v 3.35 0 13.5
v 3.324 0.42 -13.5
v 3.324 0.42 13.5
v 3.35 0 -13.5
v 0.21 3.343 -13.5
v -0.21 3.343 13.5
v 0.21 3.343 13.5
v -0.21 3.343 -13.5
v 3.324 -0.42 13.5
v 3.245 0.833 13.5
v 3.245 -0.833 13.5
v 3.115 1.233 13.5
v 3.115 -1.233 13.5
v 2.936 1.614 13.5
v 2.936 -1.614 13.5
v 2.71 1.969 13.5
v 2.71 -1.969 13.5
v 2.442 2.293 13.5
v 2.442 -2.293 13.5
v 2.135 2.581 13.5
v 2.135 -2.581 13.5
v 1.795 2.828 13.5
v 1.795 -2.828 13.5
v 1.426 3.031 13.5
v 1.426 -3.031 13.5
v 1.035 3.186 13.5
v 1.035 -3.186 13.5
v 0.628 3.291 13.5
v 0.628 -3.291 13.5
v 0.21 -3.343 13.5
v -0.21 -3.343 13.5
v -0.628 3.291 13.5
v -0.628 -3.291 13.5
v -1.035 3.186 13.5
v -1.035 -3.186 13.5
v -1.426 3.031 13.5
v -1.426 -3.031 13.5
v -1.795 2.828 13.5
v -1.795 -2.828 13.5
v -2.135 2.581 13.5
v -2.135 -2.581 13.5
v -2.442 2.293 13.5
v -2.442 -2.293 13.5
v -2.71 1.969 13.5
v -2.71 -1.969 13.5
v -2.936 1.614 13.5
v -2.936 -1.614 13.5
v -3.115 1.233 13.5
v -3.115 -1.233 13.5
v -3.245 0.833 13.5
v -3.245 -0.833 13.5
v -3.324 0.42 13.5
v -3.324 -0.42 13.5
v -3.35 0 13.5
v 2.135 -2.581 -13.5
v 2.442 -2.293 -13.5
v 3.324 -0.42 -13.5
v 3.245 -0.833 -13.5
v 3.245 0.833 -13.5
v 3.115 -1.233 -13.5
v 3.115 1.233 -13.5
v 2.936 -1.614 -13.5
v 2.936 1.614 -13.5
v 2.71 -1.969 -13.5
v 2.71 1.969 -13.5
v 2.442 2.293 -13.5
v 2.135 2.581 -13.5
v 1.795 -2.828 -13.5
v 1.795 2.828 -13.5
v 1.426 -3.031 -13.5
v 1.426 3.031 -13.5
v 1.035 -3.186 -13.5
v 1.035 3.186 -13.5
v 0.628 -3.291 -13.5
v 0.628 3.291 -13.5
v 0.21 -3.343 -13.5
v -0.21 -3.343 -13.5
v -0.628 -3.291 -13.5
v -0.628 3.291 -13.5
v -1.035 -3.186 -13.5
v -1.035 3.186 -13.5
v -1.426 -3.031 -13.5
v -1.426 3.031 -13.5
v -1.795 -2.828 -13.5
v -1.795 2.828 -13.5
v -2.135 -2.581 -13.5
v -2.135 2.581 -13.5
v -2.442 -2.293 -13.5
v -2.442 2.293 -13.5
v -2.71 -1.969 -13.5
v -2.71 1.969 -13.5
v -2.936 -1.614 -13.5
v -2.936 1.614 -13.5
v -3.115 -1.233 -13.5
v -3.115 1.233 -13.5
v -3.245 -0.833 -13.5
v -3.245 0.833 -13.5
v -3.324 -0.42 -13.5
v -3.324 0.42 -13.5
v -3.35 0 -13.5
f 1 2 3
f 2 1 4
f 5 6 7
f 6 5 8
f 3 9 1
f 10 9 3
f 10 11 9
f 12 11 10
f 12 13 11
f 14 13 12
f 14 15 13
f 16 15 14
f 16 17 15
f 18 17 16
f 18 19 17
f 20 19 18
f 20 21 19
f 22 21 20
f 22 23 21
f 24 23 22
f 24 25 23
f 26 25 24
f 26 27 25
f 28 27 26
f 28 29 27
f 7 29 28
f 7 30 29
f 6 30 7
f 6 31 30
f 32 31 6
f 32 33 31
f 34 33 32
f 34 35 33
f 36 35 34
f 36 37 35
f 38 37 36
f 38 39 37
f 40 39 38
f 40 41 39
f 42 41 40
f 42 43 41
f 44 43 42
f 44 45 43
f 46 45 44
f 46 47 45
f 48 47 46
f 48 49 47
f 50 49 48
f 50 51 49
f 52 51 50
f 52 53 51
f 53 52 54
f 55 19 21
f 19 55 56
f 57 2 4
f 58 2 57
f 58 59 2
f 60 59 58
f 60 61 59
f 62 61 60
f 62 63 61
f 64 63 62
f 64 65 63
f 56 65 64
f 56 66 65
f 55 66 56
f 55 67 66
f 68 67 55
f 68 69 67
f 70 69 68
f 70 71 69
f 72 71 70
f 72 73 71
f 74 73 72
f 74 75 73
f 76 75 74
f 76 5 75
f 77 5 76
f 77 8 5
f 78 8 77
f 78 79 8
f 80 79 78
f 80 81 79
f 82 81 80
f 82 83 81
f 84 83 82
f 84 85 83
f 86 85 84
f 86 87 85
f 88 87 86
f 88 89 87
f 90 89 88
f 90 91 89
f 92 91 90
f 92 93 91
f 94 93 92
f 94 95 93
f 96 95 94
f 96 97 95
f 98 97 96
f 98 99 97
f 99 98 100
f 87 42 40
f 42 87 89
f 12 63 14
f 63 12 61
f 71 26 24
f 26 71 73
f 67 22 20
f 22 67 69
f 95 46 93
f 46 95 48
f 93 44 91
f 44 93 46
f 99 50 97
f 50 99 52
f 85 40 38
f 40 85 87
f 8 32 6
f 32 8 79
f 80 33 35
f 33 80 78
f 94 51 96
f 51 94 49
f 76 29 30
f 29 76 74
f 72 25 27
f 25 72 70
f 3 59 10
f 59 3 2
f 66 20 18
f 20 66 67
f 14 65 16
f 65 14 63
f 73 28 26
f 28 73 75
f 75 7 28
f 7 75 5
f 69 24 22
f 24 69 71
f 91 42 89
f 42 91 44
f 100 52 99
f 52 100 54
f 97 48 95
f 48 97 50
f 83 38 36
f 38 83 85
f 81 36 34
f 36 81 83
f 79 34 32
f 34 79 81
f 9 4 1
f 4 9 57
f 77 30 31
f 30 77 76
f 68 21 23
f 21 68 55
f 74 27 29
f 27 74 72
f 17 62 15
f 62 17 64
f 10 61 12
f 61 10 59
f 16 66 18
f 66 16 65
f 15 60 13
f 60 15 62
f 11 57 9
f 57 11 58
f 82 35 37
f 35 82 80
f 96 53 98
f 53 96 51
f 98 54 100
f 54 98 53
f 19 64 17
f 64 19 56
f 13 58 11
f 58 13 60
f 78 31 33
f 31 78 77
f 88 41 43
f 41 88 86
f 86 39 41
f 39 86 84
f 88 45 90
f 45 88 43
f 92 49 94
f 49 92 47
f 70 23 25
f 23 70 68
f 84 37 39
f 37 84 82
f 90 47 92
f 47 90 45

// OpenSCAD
$fn = 50;


difference() {
	union() {
		translate(v = [0, 0, -13.5000000000]) {
			cylinder(h = 27, r = 3.3500000000);
		}
	}
	union() {
		translate(v = [0, 0, -100.0000000000]) {
			cylinder(h = 200, r = 0);
		}
	}
}
